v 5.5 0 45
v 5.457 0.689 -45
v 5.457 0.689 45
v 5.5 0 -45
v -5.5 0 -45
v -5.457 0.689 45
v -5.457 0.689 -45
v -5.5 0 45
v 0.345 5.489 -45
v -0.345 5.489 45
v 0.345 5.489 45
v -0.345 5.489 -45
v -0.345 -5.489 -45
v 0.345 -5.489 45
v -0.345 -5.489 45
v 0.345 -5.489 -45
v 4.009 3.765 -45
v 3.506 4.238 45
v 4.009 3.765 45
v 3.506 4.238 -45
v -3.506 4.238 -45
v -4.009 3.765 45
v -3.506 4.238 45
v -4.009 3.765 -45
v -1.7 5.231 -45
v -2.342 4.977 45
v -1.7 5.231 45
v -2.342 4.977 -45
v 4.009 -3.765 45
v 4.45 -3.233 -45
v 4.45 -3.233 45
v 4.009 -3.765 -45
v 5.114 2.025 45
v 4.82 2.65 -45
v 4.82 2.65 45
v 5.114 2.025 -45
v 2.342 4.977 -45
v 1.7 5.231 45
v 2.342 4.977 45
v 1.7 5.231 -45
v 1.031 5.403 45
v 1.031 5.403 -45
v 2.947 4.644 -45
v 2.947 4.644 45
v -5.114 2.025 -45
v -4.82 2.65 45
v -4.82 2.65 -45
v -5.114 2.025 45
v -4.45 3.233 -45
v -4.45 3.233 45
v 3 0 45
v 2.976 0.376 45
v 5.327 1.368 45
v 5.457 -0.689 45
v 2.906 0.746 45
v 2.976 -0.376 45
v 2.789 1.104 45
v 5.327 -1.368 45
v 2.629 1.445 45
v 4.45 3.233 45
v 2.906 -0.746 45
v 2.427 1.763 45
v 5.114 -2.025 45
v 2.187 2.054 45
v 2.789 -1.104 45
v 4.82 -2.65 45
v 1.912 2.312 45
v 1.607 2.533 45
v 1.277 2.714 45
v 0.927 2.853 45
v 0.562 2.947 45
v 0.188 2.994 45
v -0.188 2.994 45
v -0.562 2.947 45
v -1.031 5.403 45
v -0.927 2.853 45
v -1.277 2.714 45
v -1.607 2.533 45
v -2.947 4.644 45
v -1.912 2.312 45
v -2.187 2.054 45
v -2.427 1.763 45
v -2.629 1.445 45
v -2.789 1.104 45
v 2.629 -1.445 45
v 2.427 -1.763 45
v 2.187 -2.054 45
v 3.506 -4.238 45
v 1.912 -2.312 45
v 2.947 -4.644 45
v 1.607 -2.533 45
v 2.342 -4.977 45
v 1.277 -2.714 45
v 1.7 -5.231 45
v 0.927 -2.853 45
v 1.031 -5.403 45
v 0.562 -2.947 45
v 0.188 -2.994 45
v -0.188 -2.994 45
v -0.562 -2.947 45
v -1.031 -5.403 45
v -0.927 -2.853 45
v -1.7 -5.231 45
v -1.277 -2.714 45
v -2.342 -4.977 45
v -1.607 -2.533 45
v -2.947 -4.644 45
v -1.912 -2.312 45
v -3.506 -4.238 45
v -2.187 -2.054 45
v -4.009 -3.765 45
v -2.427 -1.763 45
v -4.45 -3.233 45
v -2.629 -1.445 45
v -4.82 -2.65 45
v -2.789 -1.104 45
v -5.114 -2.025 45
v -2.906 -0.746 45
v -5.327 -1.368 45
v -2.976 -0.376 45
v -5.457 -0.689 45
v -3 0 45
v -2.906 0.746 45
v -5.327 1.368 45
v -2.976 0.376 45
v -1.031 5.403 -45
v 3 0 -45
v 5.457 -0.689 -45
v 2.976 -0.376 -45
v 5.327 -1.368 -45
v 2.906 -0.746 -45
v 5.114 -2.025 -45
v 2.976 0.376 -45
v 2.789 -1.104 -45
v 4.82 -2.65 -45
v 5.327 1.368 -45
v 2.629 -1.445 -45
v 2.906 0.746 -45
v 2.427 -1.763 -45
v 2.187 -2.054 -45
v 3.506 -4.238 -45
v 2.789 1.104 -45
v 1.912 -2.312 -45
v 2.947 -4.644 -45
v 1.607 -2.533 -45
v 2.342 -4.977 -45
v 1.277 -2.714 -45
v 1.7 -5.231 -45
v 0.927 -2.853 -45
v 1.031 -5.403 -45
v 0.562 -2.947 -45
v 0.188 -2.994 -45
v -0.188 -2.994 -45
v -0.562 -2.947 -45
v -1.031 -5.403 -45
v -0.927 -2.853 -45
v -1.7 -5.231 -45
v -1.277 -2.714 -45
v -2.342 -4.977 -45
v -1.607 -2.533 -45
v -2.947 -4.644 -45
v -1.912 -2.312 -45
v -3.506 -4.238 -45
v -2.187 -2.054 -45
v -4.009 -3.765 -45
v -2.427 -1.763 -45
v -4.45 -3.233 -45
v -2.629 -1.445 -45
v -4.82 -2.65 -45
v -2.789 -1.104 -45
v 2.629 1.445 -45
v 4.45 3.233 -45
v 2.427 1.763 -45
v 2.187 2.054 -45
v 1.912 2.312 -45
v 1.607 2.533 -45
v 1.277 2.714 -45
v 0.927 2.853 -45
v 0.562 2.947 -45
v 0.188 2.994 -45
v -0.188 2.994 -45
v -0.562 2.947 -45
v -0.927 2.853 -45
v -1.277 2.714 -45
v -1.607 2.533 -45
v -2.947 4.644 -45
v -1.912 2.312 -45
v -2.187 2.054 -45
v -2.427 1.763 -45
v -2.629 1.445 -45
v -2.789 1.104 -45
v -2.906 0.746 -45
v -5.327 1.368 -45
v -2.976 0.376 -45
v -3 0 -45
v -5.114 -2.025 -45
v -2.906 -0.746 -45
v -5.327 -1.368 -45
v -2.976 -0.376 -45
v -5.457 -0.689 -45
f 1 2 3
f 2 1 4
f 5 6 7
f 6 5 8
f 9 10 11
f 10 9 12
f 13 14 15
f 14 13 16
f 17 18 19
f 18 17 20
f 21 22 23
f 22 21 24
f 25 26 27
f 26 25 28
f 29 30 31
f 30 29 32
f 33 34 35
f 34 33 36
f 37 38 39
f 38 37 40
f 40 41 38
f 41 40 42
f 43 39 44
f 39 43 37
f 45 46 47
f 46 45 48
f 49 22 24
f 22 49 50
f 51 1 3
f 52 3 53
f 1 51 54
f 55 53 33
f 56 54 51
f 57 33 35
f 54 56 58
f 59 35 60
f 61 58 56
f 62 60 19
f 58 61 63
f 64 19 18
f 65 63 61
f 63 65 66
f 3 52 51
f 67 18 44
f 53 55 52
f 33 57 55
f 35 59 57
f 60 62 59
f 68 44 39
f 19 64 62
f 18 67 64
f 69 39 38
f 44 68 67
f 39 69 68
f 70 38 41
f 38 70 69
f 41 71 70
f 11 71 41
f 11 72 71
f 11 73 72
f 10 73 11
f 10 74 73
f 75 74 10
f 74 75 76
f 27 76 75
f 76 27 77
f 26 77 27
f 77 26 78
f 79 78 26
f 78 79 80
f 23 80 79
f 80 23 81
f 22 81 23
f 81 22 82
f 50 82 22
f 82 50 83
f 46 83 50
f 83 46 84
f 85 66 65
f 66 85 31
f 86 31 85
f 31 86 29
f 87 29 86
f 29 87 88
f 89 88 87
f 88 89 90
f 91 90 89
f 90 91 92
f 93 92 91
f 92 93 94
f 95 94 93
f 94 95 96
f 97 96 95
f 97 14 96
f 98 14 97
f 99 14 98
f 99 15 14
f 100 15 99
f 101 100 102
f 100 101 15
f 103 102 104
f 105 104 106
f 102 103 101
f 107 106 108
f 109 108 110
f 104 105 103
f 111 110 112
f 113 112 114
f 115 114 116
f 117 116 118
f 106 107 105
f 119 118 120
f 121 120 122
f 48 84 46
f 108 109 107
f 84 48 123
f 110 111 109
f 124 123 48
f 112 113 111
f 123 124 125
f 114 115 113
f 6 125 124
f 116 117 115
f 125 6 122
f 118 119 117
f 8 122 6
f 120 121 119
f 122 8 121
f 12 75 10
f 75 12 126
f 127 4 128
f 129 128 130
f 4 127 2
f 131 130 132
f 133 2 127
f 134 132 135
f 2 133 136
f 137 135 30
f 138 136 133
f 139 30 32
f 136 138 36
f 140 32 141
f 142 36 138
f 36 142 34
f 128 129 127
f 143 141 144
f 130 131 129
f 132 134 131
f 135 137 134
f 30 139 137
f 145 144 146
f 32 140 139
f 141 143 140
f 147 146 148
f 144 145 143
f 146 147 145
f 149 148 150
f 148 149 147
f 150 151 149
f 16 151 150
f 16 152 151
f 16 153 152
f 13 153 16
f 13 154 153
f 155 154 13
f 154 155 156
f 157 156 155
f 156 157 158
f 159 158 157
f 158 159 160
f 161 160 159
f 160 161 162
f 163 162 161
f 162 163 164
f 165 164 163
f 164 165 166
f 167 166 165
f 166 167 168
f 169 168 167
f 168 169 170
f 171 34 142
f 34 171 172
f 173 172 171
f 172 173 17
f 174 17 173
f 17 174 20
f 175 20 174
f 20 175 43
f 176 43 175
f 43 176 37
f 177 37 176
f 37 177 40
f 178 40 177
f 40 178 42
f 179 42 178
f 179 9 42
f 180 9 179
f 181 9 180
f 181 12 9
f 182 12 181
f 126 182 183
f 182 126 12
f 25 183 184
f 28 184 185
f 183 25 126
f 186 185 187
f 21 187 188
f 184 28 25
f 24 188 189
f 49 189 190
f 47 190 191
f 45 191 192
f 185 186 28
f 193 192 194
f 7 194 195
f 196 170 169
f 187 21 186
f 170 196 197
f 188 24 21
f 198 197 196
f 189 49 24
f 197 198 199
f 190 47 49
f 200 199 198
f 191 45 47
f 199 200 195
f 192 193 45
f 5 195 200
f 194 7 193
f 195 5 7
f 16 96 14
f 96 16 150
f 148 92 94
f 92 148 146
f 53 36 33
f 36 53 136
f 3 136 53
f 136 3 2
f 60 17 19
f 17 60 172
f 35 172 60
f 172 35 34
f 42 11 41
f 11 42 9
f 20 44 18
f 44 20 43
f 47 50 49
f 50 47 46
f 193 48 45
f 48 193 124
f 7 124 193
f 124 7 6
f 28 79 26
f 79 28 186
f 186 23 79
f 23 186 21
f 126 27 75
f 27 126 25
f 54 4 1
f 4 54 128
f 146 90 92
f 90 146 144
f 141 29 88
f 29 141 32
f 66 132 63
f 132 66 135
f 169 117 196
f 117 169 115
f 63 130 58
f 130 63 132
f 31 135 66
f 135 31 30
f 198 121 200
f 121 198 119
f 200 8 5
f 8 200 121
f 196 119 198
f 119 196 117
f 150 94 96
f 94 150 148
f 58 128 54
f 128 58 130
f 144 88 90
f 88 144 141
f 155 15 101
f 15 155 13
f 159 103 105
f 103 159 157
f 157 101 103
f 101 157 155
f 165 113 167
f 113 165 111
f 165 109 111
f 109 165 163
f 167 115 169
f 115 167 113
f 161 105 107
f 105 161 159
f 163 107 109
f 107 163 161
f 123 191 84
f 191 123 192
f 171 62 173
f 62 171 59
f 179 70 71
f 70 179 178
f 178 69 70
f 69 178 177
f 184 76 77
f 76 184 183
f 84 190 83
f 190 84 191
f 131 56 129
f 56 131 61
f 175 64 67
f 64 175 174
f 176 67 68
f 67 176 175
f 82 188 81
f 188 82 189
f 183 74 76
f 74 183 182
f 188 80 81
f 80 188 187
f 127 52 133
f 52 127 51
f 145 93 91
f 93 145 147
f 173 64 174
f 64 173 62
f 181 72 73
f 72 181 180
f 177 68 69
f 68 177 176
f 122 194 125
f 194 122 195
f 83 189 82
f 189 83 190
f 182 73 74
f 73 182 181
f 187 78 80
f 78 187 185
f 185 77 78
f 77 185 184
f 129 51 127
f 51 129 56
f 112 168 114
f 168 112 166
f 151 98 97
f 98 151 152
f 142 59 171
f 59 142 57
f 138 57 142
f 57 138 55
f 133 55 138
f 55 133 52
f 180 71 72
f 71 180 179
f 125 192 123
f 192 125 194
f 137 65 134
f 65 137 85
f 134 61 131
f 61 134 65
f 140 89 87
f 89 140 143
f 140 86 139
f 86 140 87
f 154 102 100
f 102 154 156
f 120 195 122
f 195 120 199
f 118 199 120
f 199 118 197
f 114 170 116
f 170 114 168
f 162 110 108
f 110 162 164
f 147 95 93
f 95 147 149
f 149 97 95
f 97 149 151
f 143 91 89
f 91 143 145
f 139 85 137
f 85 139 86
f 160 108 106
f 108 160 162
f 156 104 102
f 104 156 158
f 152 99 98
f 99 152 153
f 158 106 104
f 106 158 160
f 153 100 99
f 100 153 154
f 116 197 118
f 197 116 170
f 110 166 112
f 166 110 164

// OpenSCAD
$fn = 50;


difference() {
	union() {
		translate(v = [0, 0, -45.0000000000]) {
			cylinder(h = 90, r = 5.5000000000);
		}
	}
	union() {
		translate(v = [0, 0, -100.0000000000]) {
			cylinder(h = 200, r = 3);
		}
	}
}
